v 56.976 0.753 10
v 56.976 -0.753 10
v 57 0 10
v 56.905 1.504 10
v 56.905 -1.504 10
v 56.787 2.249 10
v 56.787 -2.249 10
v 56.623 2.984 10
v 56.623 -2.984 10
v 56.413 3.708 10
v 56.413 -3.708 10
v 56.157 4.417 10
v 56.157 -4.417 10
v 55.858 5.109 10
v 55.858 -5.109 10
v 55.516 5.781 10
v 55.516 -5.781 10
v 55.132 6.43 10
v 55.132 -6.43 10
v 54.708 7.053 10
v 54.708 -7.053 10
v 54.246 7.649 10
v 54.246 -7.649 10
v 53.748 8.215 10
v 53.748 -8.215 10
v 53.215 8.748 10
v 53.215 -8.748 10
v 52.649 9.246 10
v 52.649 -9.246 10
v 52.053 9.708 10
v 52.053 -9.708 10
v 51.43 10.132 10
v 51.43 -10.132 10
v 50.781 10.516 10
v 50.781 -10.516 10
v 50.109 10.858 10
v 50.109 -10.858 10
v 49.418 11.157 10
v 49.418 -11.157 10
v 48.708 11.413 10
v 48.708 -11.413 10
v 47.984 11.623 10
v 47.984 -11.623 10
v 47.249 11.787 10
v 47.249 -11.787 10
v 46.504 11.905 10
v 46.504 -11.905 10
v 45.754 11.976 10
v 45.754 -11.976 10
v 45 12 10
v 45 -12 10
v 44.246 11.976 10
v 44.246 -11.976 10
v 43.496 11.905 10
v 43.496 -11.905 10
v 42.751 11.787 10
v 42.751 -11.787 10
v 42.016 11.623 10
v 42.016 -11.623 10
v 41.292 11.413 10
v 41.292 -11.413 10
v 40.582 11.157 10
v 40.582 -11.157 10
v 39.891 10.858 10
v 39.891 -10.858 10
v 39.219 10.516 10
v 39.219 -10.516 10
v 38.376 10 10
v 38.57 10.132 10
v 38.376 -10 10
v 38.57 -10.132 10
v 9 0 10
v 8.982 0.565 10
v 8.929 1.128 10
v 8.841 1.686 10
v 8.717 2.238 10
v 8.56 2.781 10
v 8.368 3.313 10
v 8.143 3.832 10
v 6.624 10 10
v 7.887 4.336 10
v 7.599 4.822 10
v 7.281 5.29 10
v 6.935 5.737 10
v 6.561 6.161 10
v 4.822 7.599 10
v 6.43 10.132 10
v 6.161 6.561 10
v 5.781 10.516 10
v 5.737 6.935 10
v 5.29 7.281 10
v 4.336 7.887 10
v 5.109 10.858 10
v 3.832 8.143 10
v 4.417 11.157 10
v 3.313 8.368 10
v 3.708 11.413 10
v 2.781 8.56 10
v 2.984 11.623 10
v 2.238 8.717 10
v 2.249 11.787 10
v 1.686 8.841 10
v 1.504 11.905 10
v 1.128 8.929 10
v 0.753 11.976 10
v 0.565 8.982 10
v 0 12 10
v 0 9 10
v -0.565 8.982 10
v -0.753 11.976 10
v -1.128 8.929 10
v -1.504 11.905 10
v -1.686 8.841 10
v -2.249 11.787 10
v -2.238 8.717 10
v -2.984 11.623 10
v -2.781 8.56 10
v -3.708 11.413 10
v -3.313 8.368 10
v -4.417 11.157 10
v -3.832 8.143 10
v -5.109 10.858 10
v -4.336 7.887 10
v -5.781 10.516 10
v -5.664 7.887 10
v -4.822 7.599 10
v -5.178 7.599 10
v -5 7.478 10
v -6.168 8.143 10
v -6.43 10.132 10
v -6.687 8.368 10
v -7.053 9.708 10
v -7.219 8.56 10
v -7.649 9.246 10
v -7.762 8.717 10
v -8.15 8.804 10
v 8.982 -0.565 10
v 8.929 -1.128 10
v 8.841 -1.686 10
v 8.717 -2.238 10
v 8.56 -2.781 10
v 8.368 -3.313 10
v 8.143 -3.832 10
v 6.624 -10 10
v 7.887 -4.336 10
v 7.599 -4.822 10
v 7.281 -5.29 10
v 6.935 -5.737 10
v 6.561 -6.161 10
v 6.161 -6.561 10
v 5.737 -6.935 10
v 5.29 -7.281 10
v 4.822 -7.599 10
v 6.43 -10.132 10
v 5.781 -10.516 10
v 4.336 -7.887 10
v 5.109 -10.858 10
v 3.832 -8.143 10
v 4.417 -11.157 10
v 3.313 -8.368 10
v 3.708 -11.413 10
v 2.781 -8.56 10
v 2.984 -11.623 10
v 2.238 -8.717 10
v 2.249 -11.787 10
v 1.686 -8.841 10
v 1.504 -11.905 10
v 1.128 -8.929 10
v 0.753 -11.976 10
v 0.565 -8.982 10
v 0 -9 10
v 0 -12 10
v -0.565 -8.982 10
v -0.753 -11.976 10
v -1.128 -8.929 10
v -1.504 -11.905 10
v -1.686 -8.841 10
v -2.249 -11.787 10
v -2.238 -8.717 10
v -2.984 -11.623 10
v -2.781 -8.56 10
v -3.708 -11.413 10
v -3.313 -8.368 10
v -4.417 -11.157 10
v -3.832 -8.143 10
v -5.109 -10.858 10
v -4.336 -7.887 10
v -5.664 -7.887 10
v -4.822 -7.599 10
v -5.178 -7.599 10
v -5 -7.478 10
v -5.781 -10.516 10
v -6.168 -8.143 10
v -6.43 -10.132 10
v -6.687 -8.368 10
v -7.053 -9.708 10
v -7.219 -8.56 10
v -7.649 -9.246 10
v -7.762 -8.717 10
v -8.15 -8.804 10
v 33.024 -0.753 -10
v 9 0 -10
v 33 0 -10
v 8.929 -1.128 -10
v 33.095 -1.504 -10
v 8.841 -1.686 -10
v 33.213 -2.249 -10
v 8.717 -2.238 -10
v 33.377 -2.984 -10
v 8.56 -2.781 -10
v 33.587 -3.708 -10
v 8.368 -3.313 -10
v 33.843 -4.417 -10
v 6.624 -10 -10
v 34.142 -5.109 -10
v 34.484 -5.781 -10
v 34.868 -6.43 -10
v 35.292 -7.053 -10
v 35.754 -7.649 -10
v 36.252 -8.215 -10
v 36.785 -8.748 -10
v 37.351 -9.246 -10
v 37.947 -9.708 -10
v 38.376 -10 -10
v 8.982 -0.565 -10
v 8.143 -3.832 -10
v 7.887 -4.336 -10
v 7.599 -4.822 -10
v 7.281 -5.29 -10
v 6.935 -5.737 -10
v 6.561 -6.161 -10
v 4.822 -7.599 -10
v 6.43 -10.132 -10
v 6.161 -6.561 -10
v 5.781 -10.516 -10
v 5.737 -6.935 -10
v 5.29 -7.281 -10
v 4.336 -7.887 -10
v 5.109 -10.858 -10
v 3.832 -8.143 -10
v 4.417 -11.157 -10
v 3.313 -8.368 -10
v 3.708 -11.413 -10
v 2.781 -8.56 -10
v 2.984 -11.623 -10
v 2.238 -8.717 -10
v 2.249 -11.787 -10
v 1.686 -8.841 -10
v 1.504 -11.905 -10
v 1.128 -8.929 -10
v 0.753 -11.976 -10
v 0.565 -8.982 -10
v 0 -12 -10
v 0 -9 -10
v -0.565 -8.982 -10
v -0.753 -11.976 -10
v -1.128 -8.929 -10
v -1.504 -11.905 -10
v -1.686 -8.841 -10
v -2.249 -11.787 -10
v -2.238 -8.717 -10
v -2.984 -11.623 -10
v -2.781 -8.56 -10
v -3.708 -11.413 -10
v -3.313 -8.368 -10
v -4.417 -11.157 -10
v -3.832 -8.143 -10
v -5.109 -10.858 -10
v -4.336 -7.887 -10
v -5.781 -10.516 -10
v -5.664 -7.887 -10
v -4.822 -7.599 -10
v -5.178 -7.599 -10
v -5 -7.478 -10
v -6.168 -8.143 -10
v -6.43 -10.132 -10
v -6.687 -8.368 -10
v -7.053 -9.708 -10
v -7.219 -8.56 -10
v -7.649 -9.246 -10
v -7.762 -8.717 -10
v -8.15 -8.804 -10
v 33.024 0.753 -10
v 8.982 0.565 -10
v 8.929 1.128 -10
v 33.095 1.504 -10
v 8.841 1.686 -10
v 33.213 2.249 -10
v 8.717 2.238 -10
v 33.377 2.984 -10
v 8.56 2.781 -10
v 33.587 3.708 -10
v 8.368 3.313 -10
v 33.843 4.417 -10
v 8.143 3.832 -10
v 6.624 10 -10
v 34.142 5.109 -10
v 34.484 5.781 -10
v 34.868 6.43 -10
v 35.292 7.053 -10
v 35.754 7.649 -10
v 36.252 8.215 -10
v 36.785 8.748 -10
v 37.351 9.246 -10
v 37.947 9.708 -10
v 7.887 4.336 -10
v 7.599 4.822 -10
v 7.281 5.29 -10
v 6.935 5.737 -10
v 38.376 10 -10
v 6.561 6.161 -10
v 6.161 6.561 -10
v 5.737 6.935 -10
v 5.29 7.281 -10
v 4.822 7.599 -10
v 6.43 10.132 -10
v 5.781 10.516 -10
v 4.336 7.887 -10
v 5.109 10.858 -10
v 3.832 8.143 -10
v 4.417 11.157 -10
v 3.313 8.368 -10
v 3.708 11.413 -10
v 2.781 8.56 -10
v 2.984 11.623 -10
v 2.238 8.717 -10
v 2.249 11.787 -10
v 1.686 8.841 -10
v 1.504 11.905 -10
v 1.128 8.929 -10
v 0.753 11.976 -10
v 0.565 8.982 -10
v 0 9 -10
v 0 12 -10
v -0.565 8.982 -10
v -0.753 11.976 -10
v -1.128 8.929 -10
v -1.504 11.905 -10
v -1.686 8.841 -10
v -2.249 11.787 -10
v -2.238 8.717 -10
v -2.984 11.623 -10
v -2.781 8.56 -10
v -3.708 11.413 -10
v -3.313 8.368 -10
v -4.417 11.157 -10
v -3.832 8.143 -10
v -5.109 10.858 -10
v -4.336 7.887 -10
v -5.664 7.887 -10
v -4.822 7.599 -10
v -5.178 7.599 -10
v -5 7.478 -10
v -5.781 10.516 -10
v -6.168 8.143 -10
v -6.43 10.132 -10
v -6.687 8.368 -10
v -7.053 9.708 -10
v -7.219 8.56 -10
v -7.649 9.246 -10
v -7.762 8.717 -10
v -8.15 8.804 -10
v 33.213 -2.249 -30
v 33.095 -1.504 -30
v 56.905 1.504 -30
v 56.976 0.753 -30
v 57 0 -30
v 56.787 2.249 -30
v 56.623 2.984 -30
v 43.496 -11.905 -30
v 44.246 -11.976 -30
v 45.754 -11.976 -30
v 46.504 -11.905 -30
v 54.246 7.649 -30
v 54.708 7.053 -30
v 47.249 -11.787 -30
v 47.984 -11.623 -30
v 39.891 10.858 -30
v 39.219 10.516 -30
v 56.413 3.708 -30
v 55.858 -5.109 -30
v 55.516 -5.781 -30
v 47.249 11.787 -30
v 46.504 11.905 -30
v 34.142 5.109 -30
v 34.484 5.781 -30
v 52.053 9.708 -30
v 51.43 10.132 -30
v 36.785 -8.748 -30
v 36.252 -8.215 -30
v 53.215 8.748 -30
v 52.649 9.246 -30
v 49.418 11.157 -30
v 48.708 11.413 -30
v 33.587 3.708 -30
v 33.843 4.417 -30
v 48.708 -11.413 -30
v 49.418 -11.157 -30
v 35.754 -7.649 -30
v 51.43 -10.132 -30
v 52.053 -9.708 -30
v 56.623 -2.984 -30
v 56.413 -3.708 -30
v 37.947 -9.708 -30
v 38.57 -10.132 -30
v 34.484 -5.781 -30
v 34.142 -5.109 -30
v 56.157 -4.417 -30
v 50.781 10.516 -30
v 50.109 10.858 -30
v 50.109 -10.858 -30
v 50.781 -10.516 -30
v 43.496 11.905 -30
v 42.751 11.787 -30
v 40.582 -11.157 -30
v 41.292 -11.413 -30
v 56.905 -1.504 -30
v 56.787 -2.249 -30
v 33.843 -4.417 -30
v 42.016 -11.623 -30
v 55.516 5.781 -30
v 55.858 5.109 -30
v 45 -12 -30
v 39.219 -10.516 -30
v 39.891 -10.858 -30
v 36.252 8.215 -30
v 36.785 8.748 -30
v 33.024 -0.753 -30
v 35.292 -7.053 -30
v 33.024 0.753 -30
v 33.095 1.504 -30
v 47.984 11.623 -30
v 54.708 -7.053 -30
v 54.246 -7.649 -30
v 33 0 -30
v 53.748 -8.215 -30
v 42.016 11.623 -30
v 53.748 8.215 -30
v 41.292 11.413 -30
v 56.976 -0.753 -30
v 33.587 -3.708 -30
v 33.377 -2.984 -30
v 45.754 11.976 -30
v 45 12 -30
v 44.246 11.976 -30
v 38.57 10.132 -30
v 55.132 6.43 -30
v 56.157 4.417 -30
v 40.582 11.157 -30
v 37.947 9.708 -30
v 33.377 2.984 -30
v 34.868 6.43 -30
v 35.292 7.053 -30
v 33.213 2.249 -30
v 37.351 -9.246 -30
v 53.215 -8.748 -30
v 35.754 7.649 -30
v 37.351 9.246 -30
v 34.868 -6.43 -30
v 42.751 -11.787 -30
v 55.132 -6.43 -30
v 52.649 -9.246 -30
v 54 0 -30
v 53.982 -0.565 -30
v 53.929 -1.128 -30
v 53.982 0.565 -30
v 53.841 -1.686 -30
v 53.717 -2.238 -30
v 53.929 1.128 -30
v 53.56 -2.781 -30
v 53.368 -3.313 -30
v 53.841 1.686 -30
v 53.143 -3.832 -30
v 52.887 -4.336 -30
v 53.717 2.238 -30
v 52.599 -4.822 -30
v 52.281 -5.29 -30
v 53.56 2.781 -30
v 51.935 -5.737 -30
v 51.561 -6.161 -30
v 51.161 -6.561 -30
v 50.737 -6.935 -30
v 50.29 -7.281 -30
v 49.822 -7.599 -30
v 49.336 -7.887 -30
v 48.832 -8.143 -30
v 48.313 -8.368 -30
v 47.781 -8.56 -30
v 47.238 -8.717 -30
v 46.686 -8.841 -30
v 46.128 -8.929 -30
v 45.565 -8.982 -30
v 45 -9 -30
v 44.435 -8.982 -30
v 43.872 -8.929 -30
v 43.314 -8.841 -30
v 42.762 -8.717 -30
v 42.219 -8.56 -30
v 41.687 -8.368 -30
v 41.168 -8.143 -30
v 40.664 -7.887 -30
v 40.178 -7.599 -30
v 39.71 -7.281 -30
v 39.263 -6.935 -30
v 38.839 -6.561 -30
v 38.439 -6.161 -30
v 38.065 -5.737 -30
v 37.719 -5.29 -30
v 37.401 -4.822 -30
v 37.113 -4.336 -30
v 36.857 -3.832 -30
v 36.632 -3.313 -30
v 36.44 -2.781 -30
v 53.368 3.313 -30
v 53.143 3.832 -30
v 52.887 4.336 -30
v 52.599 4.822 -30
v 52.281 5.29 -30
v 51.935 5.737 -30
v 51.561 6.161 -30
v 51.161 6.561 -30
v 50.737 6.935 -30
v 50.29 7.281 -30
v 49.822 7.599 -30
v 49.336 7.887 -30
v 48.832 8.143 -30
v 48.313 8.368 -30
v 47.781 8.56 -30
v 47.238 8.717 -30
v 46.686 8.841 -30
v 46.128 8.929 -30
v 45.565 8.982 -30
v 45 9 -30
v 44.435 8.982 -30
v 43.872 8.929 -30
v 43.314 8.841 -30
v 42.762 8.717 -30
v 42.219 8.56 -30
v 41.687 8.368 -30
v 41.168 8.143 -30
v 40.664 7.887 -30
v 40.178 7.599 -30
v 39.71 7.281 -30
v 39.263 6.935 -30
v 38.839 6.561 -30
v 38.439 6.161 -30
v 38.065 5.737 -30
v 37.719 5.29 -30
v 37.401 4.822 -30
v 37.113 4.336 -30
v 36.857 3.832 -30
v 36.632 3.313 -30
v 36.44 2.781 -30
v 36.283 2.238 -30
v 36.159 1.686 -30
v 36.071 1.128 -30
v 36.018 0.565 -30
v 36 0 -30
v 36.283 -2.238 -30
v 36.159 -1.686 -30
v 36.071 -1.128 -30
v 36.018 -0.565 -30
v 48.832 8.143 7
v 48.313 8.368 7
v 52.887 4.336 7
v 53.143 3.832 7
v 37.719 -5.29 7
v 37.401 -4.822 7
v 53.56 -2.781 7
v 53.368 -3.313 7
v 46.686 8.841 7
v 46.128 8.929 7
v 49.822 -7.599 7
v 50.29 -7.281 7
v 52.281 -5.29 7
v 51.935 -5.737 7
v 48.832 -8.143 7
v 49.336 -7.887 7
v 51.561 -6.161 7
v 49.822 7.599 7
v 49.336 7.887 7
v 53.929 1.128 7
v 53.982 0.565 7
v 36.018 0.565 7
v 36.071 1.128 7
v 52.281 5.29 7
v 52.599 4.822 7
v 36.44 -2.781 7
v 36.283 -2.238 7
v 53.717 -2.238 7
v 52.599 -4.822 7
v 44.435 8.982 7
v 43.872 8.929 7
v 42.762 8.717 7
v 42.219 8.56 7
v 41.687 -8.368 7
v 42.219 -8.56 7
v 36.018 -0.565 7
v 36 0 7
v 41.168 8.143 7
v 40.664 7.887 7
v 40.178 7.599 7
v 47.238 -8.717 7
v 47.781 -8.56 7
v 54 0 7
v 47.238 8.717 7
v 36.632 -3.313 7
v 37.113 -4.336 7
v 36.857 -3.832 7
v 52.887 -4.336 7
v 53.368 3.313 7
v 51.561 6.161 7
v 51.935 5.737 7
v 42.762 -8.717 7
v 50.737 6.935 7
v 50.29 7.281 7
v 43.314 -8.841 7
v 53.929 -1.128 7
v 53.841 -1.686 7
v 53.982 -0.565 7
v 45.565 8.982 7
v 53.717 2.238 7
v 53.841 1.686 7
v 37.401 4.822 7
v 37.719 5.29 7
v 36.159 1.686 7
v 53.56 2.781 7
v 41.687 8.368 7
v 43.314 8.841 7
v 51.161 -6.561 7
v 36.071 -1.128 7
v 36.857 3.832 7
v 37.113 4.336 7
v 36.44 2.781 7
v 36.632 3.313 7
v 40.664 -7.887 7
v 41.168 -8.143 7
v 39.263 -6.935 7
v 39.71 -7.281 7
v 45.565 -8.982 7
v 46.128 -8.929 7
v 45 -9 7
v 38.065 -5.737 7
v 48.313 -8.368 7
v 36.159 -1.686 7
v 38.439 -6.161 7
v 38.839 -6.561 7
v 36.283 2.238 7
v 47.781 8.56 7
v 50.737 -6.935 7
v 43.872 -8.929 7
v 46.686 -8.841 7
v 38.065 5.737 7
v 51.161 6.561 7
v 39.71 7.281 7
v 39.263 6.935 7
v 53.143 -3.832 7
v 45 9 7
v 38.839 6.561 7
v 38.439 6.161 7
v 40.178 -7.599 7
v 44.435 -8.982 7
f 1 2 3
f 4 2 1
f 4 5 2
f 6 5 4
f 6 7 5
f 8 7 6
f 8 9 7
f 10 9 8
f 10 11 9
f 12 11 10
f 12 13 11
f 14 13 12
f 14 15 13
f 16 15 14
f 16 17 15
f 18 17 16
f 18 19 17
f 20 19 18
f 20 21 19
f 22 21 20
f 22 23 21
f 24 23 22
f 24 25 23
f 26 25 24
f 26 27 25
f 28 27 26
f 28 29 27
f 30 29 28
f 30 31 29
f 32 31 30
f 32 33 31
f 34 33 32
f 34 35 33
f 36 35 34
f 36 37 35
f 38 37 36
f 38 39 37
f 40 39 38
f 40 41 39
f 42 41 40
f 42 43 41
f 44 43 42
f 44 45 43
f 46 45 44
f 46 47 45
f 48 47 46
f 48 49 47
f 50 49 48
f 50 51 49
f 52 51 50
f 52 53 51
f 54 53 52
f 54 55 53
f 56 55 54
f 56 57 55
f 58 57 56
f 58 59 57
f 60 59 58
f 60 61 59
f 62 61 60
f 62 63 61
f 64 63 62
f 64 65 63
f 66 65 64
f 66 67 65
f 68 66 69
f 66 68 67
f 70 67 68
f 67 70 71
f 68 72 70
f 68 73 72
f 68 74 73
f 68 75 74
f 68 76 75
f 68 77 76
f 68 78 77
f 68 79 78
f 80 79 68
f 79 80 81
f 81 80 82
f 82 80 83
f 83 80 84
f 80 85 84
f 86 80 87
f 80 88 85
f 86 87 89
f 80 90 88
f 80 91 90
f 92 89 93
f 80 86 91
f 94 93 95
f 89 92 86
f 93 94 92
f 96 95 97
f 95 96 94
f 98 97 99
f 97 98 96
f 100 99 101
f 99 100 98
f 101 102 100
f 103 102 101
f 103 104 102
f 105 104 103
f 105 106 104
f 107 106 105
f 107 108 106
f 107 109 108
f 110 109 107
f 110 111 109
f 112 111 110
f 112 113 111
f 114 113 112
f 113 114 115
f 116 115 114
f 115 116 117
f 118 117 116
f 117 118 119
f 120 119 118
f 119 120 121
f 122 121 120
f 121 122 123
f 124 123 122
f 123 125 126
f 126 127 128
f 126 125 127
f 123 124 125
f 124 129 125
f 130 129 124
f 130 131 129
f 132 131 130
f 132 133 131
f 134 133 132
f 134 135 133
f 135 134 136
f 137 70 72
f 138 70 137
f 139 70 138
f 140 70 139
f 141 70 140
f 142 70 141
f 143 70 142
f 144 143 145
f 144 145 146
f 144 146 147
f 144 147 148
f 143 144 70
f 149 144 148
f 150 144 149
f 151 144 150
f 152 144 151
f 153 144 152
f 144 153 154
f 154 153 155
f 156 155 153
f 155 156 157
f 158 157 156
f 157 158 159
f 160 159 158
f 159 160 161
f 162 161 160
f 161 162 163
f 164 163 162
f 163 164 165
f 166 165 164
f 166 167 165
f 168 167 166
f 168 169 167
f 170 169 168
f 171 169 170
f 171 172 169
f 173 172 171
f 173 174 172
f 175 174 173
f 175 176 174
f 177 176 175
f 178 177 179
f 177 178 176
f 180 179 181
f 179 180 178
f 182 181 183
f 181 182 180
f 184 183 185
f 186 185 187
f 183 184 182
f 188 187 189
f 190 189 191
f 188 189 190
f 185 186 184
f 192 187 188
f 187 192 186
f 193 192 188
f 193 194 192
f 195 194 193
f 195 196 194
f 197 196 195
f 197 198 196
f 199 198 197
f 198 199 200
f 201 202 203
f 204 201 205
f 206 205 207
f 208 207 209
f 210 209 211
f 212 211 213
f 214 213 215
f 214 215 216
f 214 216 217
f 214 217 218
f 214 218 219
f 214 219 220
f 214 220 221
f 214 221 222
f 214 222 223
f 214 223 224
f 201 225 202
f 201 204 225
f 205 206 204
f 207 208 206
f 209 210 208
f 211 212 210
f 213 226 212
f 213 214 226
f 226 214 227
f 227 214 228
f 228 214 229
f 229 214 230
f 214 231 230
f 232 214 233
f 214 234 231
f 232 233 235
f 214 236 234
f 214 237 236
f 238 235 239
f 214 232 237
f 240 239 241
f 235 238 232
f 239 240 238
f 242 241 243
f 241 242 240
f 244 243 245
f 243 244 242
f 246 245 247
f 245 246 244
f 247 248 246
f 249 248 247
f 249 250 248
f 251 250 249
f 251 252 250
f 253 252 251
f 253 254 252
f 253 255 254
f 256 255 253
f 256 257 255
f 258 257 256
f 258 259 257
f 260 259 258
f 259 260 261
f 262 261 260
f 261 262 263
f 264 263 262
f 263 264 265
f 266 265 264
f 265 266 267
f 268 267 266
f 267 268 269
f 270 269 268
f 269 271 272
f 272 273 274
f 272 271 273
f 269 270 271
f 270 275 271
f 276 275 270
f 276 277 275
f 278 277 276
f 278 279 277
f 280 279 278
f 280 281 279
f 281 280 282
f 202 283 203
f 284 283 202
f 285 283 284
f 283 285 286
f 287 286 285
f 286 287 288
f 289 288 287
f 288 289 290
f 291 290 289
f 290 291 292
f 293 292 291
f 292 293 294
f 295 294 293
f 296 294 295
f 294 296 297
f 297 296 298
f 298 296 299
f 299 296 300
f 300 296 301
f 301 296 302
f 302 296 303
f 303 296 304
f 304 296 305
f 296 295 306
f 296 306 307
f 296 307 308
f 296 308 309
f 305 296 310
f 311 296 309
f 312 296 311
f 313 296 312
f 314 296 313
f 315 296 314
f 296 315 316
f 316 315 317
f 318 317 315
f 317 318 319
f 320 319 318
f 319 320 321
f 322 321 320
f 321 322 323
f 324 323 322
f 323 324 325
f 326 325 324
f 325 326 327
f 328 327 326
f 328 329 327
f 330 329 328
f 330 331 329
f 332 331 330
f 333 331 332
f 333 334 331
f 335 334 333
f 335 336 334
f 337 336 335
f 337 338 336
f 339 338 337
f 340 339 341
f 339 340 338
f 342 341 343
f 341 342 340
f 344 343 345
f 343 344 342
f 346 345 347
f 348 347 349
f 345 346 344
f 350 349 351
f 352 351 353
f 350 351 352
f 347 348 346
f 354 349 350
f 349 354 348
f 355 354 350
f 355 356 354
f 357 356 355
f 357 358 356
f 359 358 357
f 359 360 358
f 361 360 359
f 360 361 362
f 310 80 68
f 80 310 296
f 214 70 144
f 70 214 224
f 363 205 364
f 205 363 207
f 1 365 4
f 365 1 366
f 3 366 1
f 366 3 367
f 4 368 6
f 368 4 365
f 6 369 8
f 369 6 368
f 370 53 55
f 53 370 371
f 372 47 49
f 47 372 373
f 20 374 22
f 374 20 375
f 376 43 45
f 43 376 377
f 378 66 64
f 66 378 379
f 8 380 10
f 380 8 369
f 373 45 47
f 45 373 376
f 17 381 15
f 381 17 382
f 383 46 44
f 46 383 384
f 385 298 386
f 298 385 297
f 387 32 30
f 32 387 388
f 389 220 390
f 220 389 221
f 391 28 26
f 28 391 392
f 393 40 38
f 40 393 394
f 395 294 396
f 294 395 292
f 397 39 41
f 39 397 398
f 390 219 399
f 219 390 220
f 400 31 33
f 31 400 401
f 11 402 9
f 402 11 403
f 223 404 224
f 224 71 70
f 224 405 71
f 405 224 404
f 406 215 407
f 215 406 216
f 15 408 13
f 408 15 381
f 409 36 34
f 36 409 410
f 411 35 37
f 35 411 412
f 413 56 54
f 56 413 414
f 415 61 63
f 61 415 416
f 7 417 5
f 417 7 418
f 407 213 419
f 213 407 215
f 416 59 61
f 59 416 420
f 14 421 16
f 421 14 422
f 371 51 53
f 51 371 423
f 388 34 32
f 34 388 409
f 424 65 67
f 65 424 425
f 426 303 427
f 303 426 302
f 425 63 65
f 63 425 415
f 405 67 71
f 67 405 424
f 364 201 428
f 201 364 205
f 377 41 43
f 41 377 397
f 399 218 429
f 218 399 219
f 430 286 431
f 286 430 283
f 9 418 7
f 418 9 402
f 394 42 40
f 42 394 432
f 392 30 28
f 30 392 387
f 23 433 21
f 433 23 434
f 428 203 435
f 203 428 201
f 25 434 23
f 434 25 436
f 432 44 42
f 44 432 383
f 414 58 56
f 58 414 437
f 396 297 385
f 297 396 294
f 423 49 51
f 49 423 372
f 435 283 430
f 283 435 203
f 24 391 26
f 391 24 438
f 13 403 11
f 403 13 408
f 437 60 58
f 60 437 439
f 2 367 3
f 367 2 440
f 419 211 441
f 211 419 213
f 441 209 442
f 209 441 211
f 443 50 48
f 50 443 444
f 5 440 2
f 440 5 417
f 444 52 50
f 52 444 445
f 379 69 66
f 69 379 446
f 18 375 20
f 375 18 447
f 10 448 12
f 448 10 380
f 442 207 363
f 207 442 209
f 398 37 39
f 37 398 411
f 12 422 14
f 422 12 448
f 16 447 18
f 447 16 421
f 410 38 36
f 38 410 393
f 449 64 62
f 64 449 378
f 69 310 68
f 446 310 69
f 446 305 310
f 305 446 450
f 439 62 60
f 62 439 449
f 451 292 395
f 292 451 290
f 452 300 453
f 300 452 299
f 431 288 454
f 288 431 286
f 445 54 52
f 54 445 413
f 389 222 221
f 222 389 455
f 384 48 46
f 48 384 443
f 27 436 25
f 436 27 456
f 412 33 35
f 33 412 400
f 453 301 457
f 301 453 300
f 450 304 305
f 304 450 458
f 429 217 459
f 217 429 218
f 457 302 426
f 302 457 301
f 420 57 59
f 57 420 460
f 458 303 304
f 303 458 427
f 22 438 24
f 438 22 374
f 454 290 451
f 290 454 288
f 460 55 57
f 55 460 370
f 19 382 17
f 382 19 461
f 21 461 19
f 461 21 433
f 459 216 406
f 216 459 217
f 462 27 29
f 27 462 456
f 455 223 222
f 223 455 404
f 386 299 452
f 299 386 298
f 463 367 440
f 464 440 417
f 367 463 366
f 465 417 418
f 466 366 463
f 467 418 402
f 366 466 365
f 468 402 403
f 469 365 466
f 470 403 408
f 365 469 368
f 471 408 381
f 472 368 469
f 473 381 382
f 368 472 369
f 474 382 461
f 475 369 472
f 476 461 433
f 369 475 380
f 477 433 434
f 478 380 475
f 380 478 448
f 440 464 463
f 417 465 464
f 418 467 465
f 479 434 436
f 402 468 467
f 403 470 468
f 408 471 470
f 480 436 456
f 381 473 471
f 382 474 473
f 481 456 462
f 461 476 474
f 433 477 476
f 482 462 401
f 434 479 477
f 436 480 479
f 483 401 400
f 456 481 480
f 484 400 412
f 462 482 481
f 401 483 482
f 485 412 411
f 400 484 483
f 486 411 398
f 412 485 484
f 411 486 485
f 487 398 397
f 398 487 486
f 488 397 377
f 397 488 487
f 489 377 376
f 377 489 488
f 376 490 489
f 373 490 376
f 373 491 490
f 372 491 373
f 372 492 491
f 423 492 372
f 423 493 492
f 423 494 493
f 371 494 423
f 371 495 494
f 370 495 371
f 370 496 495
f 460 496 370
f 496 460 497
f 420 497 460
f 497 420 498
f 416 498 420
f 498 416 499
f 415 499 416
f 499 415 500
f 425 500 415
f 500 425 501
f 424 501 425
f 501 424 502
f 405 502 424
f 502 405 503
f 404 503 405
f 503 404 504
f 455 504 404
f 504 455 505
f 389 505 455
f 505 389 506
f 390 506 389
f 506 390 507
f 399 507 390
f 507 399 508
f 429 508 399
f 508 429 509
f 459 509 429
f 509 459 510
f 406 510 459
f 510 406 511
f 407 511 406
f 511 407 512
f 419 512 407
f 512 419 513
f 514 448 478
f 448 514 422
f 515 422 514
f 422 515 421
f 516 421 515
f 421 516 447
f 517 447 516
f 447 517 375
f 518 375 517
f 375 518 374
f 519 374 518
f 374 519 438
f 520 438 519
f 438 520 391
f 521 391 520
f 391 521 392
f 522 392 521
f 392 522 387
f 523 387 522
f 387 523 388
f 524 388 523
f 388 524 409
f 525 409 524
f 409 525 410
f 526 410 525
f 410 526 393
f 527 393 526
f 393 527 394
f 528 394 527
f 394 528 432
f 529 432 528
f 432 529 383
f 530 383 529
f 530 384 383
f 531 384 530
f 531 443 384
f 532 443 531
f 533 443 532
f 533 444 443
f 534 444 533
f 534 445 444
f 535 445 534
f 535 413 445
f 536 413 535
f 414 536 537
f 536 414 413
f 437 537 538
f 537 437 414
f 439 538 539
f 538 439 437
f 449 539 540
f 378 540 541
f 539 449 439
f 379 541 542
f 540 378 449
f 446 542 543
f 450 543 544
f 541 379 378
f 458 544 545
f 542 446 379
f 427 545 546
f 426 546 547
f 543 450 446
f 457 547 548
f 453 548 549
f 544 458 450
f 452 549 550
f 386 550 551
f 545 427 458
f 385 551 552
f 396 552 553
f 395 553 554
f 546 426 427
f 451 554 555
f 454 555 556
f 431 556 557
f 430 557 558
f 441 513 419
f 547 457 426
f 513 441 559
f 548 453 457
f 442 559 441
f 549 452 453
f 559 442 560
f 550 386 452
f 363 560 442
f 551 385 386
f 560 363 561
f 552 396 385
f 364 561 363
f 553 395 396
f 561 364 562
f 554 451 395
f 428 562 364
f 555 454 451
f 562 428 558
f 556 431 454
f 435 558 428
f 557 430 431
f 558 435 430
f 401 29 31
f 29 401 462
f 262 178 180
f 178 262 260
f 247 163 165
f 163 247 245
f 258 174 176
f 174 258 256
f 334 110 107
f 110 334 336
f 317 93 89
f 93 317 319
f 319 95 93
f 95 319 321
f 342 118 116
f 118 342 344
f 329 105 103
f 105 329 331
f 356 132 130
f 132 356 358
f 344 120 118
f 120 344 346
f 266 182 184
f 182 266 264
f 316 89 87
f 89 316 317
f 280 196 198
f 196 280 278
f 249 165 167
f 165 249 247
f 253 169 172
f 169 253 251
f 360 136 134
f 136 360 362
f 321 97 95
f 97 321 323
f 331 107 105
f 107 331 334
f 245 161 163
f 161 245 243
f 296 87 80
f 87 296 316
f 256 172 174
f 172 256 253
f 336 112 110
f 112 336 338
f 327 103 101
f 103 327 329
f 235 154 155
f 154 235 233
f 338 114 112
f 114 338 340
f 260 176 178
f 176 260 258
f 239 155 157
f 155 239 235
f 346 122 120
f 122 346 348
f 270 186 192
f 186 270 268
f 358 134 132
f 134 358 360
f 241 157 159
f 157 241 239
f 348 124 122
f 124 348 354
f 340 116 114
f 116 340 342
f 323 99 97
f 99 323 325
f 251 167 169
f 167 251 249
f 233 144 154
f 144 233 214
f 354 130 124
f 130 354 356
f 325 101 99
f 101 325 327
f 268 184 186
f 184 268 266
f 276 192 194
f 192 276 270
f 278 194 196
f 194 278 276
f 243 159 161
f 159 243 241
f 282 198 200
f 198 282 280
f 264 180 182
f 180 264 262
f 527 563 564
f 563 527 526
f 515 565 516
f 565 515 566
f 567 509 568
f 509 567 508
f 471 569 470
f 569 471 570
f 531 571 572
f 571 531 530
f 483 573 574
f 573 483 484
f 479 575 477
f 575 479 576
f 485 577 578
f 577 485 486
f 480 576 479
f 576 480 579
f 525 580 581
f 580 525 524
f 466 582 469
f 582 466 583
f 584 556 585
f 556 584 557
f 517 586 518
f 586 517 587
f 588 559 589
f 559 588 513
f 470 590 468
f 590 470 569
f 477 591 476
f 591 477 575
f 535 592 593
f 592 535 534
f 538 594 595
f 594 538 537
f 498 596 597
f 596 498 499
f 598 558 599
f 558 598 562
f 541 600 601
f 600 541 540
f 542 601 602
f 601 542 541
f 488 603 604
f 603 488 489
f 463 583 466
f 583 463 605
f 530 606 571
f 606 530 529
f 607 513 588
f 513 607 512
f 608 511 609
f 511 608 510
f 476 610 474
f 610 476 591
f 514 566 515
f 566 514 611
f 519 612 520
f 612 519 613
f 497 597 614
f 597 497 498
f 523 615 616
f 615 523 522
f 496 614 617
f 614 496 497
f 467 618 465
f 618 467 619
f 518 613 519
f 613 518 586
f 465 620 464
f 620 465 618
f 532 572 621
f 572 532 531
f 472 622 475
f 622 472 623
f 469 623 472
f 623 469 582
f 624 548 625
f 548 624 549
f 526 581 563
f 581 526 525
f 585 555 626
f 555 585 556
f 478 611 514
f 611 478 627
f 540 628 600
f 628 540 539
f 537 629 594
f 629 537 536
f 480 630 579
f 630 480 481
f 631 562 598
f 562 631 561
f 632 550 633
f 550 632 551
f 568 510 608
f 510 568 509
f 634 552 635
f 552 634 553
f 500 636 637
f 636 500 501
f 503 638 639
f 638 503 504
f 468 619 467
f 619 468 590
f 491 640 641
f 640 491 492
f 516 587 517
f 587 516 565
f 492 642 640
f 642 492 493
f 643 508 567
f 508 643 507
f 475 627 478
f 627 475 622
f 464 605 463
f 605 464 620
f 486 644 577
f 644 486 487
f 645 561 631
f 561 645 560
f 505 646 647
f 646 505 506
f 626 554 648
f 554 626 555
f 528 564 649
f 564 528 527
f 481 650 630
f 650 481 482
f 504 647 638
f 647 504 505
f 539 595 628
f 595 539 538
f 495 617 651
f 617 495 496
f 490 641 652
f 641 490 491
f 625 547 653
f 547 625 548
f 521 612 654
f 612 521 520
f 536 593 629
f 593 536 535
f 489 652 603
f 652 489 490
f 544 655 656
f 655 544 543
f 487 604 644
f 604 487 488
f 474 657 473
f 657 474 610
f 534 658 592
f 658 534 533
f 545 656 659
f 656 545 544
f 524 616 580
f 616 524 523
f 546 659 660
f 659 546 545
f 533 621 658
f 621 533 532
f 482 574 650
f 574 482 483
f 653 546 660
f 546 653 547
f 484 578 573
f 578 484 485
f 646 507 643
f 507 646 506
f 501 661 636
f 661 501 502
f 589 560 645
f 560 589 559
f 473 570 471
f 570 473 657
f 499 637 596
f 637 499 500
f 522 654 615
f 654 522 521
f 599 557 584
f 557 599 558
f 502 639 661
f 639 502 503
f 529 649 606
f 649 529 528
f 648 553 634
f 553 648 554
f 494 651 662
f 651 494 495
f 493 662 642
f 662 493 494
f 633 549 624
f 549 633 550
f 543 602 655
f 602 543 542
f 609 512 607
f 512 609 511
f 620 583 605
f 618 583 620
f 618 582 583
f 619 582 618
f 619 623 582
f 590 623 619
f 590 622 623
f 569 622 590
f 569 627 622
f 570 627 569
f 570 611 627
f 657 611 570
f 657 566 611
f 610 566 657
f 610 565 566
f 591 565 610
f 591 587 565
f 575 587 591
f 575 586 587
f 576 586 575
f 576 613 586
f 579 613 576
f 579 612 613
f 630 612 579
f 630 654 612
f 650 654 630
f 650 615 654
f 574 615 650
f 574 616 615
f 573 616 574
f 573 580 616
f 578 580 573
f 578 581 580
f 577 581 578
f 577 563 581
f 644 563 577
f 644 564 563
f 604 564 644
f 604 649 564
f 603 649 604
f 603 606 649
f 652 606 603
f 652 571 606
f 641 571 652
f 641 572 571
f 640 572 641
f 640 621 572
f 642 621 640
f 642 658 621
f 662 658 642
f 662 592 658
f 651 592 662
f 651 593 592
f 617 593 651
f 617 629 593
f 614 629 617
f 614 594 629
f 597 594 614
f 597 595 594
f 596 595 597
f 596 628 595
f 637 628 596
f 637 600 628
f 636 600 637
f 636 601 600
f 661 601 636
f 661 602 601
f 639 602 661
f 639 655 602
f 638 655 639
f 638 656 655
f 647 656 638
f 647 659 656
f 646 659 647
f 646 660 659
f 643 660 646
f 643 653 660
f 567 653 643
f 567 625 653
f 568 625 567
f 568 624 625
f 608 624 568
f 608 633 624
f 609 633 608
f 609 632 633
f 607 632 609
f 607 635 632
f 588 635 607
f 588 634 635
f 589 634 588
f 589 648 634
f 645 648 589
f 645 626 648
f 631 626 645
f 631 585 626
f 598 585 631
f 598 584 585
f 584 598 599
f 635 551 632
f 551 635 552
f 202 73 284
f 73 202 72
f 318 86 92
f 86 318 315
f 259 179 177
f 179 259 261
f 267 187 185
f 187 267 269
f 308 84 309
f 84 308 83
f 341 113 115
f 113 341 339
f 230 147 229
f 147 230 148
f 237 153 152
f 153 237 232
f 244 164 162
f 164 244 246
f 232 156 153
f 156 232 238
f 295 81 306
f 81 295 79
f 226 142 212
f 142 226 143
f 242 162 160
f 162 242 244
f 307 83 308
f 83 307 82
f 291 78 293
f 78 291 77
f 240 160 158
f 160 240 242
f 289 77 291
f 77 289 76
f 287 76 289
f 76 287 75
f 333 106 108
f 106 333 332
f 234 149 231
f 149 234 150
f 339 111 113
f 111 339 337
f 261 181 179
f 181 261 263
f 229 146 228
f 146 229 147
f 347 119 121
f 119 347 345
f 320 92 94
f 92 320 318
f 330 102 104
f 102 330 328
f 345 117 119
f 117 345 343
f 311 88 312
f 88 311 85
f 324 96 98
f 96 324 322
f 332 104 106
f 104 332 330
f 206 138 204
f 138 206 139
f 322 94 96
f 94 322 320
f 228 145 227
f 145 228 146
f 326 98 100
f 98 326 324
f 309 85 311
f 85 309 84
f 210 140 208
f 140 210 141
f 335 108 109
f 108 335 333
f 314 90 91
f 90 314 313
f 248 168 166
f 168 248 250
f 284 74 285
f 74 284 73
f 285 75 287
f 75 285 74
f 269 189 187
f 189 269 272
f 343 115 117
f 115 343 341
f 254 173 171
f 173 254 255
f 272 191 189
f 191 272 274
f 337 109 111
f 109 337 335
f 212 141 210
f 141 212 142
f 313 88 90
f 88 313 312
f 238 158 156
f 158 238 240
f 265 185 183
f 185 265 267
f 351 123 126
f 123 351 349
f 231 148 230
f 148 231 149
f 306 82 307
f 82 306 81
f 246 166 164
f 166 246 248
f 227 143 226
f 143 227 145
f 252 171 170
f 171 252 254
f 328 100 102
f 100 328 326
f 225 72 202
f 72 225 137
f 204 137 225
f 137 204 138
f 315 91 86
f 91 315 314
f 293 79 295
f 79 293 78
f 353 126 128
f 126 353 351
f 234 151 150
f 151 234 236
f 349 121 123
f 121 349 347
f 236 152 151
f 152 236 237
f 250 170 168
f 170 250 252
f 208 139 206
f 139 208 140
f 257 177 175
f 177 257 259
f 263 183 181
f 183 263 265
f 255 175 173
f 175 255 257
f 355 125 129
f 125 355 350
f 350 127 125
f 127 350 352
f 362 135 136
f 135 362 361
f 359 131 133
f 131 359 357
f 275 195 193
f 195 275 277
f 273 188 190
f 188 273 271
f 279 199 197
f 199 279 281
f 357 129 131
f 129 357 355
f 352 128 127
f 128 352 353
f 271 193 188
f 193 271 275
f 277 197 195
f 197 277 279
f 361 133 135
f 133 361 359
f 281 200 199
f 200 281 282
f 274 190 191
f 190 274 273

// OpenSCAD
$fn = 100;
difference() {
    union() {
        translate([25,0,0]) cube([50,20,20],true);
        translate([45,0,-10]) cylinder(40,12,12,true);
        cylinder(20,12,12,true);
    }
    translate([45,0,-18]) cylinder(50,9,9,true);
    cylinder(30,9,9,true);
    translate([-10,0,0]) cylinder(50,9,9,true);
}
